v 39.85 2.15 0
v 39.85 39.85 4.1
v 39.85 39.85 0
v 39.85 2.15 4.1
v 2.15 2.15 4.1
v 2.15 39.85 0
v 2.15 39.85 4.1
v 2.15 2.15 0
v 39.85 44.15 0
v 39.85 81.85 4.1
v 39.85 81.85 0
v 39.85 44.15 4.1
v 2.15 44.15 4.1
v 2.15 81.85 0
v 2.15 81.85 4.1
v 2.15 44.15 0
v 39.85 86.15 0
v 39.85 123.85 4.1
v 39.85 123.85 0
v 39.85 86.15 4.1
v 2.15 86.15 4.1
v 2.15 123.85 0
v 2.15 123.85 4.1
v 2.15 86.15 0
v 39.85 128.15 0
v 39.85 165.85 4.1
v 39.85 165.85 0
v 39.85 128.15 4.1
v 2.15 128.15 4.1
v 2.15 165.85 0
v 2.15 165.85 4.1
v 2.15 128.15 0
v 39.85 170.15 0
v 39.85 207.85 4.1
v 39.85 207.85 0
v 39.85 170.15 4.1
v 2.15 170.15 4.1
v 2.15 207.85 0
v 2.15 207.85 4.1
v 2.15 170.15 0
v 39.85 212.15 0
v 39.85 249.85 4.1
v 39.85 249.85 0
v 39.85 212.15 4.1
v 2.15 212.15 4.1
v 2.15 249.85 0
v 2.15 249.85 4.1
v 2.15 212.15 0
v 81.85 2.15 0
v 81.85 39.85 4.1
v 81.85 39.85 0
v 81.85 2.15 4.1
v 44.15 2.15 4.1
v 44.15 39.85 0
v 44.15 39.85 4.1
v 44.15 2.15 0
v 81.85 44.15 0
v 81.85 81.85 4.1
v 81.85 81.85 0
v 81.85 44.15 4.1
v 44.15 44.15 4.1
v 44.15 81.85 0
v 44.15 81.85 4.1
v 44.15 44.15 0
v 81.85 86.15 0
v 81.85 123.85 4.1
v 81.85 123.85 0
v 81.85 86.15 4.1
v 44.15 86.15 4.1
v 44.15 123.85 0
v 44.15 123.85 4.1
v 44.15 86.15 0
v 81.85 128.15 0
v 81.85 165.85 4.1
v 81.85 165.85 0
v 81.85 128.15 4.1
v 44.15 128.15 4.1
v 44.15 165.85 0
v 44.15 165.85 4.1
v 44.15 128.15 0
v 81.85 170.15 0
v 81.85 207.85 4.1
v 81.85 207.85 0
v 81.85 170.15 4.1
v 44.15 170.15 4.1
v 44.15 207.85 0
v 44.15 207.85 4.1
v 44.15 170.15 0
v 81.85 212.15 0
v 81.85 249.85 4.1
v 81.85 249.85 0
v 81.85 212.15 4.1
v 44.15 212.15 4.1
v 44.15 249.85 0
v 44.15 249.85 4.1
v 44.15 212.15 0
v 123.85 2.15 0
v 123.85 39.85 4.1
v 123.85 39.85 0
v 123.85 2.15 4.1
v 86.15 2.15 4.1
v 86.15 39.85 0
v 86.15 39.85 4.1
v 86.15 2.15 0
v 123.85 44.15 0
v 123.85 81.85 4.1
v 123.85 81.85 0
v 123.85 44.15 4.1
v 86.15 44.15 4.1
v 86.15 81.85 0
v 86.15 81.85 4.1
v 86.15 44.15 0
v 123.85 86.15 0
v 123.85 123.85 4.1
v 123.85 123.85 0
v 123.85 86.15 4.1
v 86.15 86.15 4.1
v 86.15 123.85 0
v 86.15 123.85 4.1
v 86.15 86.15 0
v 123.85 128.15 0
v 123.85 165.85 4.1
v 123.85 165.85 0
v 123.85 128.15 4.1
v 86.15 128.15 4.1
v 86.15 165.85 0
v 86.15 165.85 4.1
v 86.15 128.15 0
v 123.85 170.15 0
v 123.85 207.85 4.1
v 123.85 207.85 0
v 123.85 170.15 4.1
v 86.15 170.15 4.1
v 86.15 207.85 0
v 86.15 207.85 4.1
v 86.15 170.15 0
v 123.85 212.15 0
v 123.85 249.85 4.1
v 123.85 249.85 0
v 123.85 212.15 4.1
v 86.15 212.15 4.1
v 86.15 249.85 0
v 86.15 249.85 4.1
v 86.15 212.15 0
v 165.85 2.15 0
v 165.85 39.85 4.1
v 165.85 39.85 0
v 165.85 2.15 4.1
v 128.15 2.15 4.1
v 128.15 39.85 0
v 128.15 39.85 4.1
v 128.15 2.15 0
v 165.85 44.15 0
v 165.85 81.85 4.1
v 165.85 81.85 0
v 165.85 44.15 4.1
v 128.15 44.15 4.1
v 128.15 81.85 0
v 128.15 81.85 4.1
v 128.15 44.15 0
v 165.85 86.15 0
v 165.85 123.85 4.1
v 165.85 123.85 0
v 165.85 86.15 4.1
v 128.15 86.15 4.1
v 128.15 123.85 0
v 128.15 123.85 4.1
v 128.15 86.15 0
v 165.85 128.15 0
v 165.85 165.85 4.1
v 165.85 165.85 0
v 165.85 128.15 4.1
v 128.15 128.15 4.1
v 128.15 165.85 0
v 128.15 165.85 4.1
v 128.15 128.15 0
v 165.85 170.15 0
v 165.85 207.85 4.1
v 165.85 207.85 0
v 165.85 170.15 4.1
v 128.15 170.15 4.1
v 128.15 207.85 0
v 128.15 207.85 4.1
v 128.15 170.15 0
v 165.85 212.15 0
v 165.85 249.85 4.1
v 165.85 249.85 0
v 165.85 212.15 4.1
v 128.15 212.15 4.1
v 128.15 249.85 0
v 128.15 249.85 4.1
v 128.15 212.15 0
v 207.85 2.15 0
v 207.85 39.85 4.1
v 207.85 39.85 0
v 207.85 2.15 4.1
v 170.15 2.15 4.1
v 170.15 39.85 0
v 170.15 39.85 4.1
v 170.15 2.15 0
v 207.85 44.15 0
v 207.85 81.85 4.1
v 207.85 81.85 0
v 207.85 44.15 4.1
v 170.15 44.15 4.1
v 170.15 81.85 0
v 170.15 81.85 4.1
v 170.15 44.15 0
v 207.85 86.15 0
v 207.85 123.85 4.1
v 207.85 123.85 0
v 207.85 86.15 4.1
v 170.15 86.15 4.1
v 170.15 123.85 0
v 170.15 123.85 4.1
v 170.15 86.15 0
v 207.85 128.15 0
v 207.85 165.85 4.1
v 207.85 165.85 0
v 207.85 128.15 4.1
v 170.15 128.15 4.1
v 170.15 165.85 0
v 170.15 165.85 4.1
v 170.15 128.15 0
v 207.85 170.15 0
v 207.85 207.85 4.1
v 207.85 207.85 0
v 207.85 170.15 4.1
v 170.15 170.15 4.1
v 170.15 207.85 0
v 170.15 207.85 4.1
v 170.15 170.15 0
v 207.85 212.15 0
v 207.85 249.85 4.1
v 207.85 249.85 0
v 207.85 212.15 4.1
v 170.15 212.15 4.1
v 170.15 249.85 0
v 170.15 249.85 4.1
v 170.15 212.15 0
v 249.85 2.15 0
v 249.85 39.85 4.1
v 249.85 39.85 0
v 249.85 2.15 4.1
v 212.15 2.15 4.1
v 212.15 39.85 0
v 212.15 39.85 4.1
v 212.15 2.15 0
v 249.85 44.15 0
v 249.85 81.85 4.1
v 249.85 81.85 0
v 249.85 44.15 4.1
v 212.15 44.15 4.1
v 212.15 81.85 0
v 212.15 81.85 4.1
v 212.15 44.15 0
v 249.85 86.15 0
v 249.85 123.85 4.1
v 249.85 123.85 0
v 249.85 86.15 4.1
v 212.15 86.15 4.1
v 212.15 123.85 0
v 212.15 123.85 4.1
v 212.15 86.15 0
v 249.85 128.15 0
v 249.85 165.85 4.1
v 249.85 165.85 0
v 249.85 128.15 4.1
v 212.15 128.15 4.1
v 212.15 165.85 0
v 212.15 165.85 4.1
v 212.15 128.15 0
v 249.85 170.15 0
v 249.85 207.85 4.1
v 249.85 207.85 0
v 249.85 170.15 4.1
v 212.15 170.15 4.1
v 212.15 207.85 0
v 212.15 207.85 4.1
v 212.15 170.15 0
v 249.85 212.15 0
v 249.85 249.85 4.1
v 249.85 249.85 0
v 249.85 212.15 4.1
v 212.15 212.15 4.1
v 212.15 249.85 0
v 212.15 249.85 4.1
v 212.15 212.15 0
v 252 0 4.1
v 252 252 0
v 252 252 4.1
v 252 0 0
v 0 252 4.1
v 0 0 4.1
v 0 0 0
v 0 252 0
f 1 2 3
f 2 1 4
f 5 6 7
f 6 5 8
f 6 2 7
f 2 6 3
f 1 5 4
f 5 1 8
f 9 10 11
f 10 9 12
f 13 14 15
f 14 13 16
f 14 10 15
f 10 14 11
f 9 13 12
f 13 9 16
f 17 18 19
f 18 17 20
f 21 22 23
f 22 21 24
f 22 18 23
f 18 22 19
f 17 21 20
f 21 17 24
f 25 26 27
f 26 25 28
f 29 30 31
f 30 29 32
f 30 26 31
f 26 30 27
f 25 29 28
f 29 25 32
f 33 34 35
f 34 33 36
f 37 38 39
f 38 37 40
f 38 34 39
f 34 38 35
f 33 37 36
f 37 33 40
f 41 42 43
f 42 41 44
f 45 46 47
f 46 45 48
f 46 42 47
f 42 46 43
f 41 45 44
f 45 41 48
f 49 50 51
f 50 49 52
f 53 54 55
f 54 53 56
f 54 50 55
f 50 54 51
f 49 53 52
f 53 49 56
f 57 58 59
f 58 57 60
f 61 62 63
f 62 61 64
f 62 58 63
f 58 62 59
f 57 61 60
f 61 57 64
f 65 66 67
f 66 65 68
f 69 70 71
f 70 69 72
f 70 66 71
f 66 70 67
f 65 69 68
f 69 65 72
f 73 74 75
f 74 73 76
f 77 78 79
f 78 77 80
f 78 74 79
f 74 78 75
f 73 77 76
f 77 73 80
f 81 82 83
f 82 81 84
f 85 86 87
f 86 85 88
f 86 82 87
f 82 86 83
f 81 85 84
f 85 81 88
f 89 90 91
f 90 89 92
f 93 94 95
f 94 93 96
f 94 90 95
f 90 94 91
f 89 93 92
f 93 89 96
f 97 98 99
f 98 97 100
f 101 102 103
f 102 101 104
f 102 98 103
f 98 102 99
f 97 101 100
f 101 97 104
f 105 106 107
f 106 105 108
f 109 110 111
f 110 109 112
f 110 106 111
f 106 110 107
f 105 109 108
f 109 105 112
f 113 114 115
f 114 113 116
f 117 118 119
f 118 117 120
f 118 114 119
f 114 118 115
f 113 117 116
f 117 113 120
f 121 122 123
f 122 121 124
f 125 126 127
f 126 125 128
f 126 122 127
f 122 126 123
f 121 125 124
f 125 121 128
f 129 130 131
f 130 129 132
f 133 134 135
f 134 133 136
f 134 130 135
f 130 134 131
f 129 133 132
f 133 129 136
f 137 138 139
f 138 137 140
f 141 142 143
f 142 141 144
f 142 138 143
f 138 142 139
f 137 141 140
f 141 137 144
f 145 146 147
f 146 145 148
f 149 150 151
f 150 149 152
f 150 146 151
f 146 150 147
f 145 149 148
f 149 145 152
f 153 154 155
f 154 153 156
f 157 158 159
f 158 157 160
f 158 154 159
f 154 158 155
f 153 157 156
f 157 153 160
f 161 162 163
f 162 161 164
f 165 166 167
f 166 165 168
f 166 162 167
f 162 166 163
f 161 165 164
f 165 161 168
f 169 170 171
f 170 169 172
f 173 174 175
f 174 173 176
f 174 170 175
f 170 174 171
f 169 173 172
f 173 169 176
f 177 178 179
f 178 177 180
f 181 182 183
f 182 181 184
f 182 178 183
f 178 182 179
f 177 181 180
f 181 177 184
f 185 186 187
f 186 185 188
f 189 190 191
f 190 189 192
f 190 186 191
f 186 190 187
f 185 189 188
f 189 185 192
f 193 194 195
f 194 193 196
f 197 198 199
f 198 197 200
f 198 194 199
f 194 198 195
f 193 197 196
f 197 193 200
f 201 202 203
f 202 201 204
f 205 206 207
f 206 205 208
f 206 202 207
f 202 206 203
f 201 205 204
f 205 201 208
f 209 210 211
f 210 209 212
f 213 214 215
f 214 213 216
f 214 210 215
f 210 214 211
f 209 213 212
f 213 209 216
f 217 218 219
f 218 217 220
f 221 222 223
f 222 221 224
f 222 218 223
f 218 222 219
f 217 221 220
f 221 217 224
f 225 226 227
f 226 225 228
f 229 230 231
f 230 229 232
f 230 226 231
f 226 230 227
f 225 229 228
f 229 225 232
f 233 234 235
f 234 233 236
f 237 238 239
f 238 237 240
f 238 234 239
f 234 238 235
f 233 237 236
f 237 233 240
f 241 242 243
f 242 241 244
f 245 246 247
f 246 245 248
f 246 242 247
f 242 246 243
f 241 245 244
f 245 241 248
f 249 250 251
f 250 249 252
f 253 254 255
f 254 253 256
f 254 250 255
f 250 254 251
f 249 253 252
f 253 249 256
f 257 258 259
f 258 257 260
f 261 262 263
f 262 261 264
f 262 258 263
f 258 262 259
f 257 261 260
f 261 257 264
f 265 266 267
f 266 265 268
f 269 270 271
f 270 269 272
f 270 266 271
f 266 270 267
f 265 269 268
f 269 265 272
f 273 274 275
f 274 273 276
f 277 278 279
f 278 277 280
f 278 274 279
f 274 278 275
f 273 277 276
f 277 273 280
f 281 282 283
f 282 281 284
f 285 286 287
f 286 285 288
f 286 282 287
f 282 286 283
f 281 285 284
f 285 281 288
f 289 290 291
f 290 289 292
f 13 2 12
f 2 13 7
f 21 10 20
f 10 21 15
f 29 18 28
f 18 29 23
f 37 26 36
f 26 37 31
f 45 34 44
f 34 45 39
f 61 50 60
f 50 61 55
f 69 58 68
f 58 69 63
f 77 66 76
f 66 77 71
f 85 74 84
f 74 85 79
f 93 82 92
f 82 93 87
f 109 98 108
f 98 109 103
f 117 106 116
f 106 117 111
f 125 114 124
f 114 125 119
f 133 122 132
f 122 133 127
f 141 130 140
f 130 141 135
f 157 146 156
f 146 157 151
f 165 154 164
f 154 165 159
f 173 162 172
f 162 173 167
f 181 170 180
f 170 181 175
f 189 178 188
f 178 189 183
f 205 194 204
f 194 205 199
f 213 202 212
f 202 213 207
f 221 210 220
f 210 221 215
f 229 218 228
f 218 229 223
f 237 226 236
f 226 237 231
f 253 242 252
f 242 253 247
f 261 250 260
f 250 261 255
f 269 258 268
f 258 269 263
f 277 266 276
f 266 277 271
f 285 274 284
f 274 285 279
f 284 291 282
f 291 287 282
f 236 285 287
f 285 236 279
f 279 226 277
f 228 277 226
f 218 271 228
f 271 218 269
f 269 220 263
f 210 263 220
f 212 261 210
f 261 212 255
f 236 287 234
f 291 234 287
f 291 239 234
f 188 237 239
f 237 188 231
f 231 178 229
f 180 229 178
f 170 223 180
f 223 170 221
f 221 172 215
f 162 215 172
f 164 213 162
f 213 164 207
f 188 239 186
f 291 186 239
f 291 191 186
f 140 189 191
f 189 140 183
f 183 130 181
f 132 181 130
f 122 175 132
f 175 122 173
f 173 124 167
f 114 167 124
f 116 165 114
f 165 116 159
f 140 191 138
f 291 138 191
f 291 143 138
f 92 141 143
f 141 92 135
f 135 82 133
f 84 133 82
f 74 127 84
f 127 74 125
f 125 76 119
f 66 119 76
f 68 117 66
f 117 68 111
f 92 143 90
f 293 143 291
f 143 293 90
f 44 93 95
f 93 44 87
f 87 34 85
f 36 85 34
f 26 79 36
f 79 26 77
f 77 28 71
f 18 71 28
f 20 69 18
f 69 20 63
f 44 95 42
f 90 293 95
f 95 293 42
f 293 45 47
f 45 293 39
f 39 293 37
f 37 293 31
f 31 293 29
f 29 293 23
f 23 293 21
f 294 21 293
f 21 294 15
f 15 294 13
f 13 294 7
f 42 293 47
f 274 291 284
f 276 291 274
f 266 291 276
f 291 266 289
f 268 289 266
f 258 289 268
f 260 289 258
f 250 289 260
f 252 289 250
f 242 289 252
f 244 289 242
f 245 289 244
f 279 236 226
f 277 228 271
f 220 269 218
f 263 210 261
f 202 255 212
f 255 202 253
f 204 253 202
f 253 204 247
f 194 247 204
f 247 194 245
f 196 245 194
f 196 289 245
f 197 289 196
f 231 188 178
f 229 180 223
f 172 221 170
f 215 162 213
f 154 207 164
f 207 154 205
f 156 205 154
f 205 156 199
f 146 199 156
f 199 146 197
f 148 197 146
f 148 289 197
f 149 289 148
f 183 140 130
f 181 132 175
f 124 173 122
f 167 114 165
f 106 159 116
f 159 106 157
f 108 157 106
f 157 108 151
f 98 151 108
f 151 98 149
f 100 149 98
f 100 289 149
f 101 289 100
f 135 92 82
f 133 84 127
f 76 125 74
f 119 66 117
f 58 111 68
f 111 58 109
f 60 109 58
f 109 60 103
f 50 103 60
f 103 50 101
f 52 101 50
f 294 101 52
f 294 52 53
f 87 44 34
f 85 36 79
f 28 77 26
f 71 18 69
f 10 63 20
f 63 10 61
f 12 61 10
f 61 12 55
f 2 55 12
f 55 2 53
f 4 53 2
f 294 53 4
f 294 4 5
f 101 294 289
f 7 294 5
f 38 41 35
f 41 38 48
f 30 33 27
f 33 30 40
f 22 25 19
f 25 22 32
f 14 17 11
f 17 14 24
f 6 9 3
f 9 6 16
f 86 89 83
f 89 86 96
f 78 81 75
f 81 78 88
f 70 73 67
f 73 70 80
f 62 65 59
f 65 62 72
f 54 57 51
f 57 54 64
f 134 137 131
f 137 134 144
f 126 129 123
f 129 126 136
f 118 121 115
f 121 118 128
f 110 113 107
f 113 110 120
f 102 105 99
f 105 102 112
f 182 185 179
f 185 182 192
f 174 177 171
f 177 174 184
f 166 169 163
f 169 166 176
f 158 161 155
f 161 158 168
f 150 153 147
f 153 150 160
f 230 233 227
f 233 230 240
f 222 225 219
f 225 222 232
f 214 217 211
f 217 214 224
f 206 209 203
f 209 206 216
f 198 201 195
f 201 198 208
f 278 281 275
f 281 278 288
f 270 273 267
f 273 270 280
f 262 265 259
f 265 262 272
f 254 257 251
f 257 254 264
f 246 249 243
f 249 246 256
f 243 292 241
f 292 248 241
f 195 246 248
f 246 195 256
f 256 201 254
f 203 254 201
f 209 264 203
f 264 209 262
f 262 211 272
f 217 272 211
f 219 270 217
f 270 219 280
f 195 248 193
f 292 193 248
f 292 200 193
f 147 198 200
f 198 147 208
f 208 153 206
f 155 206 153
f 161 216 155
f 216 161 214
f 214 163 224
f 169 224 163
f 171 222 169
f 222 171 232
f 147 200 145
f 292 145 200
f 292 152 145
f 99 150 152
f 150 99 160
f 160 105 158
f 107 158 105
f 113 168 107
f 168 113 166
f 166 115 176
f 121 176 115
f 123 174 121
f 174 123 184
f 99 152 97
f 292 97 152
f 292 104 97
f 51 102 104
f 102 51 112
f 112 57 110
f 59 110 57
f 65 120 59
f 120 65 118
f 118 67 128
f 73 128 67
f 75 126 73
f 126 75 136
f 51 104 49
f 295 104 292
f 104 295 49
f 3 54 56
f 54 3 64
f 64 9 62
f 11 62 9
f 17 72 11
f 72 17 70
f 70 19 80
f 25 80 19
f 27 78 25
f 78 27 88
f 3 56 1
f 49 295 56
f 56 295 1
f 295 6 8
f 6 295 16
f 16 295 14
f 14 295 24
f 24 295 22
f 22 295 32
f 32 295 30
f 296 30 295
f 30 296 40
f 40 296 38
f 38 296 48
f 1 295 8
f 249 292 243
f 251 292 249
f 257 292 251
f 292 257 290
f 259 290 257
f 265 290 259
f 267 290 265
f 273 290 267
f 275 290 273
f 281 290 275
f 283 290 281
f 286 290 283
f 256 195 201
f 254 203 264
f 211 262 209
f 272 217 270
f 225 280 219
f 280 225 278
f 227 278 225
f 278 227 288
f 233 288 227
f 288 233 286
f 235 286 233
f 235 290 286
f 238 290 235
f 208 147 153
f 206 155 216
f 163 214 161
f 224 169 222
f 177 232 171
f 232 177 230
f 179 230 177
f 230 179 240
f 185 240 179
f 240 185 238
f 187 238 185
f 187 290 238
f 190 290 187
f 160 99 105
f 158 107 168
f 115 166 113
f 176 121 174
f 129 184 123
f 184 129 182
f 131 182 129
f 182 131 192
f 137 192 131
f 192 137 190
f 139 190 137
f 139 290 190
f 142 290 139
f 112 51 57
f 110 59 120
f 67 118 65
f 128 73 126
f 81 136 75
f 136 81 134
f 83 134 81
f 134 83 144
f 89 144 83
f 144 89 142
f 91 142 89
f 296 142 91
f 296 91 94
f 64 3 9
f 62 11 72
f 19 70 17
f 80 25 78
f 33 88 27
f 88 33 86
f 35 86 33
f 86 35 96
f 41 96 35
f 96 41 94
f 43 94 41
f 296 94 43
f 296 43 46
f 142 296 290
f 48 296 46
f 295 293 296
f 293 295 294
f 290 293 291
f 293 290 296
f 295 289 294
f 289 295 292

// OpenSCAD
/*
Gridifnity Base Configurável
Este arquivo define quantidade de blocos na base do sistema Gridifnity.
Gridifnity é um sistema modular de blocos que permite a construção de estruturas personalizadas.
A configuração da base é feita através de variáveis que definem o número de blocos em
cada direção (X, Y).
*/

// Configuração da base
medida_bloco = 37.7; // Medida de cada bloco em mm

// Defina a espessura das linhas interna (entre os blocos) e a parte externa do sistema Gridifnity (bordas)
// Valores padrão: 4.3 mm espessura das linhas internas, 2.15 mm espessura externa
espessura_externa = 2.15; // Espessura externa do sistema Gridfinity
espessura_interna = 4.3; // Espessura das linhas entre os blocos

// Defina a altura da base do sistema Gridifnity
// Valor padrão: 4.1 mm
altura_base = 4.1; // Altura da base em mm

// Defina o número de blocos na base do sistema Gridifnity
// Valores padrão: 6 blocos em X e 5 blocos em Y
num_blocos_x = 6; // Número de blocos na direção X
num_blocos_y = 6; // Número de blocos na direção Y

// =========================================================
// Função para calcular a largura total da base
// =========================================================
function calcular_largura_total(num_blocos) = 
    (num_blocos * medida_bloco) + (2 * espessura_externa) + ((num_blocos - 1) * espessura_interna);

// =========================================================
// Módulo principal para criar a base Gridifnity
// =========================================================
module gridifnity_base() {
    largura_total_x = calcular_largura_total(num_blocos_x);
    largura_total_y = calcular_largura_total(num_blocos_y);
    
    difference() {
        // Criar o bloco sólido externo
        cube([largura_total_x, largura_total_y, altura_base]);
        
        // Remover os espaços internos para criar os blocos
        for (x = [0:num_blocos_x-1]) {
            for (y = [0:num_blocos_y-1]) {
                translate([
                    espessura_externa + (x * (medida_bloco + espessura_interna)),
                    espessura_externa + (y * (medida_bloco + espessura_interna)),
                    -0.5
                ]) {
                    cube([medida_bloco, medida_bloco, altura_base + 1]);
                }
            }
        }
    }
}

// =========================================================
// Gerar a base
// =========================================================
gridifnity_base();
